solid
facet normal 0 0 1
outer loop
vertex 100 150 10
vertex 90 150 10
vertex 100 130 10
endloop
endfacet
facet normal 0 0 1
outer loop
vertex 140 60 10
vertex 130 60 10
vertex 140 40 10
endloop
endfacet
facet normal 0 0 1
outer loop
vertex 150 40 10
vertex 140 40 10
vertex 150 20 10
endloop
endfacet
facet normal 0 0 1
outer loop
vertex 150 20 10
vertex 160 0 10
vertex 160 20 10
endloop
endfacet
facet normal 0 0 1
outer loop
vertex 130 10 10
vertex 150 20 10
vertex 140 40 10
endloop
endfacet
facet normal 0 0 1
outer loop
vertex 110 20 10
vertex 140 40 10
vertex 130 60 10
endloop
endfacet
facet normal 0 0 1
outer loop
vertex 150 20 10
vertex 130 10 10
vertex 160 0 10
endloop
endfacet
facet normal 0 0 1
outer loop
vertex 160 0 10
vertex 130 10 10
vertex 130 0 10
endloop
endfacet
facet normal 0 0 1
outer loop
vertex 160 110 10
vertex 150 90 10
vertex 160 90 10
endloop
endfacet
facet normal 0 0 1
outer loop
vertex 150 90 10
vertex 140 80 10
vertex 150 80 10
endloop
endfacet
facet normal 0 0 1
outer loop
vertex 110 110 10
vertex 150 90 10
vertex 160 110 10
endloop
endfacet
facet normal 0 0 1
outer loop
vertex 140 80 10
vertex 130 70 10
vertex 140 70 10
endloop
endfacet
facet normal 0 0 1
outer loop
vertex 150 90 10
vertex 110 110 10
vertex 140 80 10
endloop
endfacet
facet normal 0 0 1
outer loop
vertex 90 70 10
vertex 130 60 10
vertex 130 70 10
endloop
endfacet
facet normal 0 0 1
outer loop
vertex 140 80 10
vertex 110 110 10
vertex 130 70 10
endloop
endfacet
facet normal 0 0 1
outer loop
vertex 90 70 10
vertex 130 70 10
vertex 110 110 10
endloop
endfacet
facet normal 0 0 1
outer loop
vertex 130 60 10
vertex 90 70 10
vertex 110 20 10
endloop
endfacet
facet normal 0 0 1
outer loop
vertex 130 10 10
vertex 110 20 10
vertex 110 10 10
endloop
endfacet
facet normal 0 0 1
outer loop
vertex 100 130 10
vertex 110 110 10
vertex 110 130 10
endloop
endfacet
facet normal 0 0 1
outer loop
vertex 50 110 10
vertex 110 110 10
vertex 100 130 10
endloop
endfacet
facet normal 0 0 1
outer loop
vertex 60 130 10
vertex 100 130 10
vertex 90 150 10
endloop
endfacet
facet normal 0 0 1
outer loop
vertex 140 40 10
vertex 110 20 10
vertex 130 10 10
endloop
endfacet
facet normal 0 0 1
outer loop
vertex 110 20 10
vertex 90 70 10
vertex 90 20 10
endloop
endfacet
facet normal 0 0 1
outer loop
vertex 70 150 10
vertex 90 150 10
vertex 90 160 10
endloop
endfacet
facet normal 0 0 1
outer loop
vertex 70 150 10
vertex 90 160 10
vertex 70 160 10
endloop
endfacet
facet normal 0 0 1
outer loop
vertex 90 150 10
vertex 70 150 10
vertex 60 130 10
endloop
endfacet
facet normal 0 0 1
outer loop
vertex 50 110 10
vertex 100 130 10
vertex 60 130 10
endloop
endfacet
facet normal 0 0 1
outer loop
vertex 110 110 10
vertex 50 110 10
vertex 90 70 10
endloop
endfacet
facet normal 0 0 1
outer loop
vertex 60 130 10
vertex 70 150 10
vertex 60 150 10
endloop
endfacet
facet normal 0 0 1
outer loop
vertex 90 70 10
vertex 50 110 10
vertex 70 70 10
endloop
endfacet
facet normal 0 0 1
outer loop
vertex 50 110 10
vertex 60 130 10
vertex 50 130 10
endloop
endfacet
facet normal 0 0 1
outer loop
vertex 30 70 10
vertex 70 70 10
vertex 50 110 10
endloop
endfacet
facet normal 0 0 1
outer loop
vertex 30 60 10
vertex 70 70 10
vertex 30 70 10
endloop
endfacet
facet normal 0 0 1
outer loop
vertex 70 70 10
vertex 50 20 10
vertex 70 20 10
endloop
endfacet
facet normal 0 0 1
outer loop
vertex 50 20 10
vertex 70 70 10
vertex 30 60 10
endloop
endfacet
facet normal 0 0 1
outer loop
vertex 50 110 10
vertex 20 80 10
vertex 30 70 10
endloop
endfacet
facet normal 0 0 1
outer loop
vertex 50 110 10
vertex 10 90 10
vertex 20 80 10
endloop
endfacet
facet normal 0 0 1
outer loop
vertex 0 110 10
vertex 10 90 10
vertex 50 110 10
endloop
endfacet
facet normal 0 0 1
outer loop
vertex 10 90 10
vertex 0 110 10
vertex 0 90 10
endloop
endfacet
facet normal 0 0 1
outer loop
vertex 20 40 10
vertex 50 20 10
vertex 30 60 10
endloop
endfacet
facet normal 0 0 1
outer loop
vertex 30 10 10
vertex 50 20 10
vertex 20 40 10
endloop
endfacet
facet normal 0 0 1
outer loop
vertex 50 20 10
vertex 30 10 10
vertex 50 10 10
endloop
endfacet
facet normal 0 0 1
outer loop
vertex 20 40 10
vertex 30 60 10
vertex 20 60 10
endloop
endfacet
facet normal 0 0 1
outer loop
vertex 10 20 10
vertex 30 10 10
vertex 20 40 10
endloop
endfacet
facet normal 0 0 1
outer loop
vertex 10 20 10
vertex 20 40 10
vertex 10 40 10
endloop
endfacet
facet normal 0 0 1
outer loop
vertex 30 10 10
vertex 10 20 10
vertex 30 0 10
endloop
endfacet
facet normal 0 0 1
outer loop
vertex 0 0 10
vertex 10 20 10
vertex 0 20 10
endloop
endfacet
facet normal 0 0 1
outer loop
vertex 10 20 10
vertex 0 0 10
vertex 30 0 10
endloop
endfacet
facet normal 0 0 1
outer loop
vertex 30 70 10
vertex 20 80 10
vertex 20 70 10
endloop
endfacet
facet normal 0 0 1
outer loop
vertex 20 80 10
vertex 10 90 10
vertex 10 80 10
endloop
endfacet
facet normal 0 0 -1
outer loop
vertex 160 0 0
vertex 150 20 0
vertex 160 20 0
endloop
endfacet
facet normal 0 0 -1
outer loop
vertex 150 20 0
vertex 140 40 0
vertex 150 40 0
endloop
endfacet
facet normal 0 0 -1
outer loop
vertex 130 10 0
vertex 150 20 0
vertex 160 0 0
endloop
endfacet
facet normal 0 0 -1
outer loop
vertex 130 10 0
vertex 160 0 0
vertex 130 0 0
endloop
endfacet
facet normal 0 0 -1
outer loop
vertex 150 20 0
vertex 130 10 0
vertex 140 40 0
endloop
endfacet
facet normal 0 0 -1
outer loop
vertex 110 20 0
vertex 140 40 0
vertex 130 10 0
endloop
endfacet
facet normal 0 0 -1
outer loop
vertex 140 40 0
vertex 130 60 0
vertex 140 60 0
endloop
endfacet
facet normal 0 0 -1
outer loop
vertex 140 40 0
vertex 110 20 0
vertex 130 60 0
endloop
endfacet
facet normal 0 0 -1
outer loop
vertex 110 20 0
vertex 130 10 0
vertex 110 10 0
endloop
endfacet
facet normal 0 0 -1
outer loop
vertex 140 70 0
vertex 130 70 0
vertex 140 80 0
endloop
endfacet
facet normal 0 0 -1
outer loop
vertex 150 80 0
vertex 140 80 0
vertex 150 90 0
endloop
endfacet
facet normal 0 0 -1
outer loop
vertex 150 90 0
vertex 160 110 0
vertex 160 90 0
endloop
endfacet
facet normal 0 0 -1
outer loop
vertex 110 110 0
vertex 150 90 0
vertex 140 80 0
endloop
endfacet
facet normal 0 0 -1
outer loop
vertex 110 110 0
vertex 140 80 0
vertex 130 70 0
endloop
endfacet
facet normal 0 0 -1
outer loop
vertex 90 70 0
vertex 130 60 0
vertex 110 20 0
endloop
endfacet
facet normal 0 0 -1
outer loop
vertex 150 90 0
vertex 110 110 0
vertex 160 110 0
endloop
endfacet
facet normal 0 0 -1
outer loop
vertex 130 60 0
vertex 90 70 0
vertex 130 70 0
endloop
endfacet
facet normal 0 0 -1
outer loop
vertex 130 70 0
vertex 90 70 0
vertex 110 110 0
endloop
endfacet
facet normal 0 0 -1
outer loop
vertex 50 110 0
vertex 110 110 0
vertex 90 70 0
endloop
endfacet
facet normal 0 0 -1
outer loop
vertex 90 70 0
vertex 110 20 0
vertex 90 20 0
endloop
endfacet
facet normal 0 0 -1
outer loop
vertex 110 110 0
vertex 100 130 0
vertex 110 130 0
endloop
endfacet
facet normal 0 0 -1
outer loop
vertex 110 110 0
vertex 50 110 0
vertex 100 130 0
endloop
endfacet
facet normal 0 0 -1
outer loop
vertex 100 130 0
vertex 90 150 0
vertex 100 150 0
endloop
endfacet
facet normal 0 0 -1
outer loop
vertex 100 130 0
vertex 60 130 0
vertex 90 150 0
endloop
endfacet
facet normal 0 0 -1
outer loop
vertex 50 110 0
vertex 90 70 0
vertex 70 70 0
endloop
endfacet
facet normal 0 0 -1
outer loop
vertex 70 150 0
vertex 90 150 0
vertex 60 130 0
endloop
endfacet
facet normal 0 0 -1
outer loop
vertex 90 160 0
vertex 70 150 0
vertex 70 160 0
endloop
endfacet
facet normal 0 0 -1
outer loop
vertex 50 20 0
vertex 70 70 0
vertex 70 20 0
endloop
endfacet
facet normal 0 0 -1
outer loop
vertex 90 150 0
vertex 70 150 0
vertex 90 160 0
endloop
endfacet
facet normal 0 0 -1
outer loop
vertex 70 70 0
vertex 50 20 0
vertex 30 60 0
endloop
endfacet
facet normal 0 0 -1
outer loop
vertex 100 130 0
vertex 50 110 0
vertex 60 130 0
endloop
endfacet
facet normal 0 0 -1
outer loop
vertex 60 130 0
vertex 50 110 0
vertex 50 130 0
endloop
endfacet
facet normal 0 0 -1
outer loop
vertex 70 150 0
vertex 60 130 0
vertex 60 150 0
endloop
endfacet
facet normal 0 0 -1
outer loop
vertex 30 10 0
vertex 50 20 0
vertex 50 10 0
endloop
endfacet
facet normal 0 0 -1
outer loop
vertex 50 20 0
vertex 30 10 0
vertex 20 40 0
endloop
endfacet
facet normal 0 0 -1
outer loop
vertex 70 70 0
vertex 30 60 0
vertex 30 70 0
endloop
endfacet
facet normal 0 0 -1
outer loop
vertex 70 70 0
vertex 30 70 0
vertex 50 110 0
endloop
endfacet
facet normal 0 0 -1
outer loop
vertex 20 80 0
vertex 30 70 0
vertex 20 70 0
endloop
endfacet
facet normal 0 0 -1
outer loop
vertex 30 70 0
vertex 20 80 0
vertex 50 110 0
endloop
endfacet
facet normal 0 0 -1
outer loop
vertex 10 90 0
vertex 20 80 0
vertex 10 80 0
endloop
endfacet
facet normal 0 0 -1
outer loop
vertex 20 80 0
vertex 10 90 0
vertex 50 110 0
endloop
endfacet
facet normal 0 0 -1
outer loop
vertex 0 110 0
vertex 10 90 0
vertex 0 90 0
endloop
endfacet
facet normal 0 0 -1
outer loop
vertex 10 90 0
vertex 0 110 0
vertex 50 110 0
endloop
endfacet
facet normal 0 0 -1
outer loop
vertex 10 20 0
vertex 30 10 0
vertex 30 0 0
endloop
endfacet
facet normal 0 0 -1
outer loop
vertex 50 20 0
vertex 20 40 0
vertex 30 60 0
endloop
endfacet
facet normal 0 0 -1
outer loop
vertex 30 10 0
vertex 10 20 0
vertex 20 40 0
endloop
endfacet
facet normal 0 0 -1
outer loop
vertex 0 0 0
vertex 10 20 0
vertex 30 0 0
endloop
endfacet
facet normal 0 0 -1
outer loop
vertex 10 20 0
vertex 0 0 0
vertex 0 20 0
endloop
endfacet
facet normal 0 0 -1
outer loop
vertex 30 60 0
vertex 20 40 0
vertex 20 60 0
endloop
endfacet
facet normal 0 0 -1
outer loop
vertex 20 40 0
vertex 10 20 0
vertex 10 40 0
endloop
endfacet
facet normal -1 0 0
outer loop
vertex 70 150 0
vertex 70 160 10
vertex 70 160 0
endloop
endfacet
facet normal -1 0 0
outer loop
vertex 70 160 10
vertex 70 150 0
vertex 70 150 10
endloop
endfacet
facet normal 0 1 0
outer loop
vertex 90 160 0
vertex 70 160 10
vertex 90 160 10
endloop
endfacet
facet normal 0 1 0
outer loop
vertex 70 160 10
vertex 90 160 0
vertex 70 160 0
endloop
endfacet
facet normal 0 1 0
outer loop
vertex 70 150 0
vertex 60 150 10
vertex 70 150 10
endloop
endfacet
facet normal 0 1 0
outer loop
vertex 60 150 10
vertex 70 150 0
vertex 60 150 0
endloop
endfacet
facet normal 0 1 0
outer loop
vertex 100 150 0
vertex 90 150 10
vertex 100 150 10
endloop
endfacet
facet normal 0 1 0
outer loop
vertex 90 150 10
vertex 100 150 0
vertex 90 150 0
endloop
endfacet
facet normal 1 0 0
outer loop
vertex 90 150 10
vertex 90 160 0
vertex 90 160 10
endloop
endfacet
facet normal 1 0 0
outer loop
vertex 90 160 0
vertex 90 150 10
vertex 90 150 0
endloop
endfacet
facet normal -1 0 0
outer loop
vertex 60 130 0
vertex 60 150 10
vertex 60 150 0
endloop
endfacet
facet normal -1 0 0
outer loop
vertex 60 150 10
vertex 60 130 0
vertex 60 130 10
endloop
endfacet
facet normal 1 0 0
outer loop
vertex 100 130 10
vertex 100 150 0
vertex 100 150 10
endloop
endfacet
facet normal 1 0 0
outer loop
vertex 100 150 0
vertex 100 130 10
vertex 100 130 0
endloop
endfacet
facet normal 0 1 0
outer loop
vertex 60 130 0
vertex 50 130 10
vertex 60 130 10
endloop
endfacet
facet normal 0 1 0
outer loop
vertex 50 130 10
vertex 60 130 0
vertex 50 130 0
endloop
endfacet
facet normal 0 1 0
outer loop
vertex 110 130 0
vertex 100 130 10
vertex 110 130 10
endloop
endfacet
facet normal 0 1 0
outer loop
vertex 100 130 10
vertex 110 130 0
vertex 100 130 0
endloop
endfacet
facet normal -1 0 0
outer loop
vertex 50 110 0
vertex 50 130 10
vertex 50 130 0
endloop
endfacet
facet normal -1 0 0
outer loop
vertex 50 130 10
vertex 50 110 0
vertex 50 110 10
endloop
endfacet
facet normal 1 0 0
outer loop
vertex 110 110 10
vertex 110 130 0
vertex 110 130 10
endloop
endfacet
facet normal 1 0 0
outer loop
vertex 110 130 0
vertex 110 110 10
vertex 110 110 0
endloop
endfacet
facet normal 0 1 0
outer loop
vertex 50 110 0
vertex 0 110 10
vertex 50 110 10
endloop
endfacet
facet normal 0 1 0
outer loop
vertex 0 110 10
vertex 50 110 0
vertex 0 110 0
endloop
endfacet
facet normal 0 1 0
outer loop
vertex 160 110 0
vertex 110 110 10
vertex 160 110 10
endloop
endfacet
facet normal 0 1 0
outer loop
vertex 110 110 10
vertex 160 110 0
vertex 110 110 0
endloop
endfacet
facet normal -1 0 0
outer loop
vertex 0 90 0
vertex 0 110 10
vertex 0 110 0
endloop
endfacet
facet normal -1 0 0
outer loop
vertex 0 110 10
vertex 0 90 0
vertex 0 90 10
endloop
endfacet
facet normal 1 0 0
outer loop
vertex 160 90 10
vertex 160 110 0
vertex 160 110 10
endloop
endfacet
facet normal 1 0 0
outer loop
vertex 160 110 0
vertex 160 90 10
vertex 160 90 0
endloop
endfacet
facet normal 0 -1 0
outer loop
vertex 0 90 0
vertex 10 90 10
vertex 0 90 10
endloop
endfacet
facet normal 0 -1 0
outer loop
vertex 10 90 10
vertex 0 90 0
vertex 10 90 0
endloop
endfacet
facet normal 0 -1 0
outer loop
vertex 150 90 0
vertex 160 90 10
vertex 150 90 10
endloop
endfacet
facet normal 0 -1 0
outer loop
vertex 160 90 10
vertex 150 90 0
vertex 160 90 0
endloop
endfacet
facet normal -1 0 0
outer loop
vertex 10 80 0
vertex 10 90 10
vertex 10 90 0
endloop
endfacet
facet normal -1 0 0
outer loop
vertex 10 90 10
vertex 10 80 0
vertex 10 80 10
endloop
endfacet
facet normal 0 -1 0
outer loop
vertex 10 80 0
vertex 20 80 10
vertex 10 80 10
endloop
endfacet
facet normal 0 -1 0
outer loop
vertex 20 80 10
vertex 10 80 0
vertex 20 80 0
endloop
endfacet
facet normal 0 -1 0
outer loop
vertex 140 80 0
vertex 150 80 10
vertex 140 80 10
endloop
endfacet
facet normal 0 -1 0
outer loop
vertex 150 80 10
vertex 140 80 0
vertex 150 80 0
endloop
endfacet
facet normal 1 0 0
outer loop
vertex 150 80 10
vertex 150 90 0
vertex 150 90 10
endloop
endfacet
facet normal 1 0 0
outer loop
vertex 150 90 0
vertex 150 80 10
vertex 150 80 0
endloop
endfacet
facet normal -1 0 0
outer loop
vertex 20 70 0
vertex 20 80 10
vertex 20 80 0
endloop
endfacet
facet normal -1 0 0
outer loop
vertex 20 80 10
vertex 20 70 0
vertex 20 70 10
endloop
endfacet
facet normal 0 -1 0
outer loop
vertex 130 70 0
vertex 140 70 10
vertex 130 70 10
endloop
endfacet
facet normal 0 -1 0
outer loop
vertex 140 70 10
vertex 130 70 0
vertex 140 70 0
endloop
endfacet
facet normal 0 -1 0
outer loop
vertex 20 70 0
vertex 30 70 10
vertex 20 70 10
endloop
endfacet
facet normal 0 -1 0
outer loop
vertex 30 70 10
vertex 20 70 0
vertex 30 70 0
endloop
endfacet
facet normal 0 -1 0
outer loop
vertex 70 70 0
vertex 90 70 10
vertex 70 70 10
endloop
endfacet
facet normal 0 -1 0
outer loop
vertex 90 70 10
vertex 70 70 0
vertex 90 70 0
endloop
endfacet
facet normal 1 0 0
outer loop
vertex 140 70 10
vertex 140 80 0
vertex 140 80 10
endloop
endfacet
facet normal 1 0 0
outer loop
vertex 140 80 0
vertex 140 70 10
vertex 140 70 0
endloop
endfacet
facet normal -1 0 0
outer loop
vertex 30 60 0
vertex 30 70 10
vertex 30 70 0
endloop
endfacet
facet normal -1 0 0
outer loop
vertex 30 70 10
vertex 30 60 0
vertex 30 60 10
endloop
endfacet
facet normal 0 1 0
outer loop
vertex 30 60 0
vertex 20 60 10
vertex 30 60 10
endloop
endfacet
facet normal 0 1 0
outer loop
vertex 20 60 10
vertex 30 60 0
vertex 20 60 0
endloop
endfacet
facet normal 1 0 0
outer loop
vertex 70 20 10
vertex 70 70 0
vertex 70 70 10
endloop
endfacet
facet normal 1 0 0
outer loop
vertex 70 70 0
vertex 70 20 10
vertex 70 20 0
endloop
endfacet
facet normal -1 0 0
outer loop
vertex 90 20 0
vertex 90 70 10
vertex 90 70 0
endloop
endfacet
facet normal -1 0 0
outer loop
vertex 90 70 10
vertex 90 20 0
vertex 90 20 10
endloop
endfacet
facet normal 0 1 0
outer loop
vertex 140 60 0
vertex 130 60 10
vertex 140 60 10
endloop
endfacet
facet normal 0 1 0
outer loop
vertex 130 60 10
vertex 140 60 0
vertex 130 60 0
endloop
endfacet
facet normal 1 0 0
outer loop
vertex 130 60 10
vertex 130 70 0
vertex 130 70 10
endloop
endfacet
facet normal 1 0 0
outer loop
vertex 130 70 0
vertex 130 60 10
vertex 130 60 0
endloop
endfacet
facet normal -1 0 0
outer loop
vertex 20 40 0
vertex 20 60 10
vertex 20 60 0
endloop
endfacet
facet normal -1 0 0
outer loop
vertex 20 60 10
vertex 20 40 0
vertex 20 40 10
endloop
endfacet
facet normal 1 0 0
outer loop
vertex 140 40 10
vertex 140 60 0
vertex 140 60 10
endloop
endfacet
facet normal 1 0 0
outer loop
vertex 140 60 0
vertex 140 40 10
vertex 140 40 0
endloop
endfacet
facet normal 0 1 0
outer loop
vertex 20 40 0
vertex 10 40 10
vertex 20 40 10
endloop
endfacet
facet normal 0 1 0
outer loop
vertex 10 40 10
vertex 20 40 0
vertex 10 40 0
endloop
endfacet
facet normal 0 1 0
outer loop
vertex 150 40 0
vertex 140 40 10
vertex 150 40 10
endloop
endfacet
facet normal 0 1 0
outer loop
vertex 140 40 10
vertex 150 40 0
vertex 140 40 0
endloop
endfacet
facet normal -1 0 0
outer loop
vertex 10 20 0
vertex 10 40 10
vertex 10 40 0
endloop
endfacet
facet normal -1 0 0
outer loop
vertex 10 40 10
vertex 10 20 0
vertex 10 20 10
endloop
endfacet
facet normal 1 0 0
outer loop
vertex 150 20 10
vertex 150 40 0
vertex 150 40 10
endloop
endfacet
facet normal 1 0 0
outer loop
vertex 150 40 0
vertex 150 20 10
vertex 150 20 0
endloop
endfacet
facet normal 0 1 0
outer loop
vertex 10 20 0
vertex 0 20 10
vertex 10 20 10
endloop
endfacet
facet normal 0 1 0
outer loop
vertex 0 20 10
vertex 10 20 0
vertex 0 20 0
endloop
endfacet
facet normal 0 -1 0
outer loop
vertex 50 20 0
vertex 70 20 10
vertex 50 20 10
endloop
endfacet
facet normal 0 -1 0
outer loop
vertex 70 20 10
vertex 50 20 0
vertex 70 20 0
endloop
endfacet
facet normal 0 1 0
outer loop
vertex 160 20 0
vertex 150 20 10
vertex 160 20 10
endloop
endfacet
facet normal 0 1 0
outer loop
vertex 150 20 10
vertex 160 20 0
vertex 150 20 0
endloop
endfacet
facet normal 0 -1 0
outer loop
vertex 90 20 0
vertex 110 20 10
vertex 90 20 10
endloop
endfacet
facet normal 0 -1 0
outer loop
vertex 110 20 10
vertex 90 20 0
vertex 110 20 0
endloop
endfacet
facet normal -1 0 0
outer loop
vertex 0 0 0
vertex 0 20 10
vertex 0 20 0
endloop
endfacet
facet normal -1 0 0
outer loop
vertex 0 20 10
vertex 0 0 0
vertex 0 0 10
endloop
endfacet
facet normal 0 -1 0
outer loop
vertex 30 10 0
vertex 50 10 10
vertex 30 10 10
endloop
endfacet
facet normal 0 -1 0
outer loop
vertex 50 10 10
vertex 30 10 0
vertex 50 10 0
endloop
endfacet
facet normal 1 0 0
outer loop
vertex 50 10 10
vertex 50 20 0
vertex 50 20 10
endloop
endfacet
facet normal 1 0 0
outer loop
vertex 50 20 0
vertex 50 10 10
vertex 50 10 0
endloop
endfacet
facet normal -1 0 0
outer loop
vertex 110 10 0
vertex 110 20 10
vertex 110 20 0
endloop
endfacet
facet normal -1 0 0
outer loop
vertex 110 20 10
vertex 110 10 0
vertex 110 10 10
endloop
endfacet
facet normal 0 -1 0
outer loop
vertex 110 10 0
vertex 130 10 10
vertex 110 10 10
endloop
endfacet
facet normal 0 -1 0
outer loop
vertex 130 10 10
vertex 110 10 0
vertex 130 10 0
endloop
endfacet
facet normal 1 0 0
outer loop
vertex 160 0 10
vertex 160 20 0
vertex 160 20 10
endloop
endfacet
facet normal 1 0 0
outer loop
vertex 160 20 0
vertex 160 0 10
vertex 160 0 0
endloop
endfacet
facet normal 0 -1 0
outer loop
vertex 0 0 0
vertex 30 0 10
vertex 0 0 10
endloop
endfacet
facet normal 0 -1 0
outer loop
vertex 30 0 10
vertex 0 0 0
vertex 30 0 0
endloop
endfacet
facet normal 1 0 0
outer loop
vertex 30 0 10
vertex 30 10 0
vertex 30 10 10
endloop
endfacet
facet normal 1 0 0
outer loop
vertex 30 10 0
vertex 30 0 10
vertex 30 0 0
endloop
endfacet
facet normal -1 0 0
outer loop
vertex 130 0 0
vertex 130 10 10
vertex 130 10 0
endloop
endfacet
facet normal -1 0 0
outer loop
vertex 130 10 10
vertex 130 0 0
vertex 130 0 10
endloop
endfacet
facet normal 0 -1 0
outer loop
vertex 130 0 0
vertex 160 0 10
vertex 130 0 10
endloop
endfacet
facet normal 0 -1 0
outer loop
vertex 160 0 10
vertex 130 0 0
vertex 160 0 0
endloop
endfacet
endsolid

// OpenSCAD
/*
 * Starman the Christmas Tree Topper - Black
 * Copyright (c) 2020 Anar Software LLC. < http://anars.com >
 *
 * This program is free software: you can redistribute it and/or modify it under
 * the terms of the GNU General Public License as published by the Free Software
 * Foundation, either version 3 of the License, or (at your option) any later
 * version.
 *
 * This program is distributed in the hope that it will be useful, but WITHOUT
 * ANY WARRANTY; without even the implied warranty of MERCHANTABILITY or FITNESS
 * FOR A PARTICULAR PURPOSE. See the GNU General Public License for more details.
 *
 * You should have received a copy of the GNU General Public License along with
 * this program. If not, see < http://www.gnu.org/licenses/ >
 *
 */

/* [Global] */

/* [Pixel Settings] */

// Pixel Length in mm (X)
pixel_length = 10;

// Pixel Width in mm (Y)
pixel_width = 10;

// Pixel Height in mm (Z)
pixel_height = 10;

/* [Hidden] */

data=[[
     "       XX",
     "      XXXX",
     "      XXXX",
     "     XXXXXX",
     "     XXXXXX",
     "XXXXXXXXXXXXXXXX",
     "XXXXXXXXXXXXXXXX",
     " XXXXXXXXXXXXXX",
     "  XXXXXXXXXXXX",
     "   XXXX  XXXX",
     "  XXXXX  XXXXX",
     "  XXXXX  XXXXX",
     " XXXXXX  XXXXXX",
     " XXXXXX  XXXXXX",
     "XXXXX      XXXXX",
     "XXX          XXX",
     ]];     

for (z = [0 : len(data) - 1])
    for (y = [0 : len(data[z]) - 1])
        if (len(data[z][y]) > 0)
            for (x = [0 : len(data[z][y]) - 1])
                if (data[z][y][x] == "X")
                    translate([x * pixel_length, (len(data[z]) - 1 - y) * pixel_width, z * pixel_height])
                        color("#000000")
                            cube([pixel_length, pixel_width, pixel_height]);
